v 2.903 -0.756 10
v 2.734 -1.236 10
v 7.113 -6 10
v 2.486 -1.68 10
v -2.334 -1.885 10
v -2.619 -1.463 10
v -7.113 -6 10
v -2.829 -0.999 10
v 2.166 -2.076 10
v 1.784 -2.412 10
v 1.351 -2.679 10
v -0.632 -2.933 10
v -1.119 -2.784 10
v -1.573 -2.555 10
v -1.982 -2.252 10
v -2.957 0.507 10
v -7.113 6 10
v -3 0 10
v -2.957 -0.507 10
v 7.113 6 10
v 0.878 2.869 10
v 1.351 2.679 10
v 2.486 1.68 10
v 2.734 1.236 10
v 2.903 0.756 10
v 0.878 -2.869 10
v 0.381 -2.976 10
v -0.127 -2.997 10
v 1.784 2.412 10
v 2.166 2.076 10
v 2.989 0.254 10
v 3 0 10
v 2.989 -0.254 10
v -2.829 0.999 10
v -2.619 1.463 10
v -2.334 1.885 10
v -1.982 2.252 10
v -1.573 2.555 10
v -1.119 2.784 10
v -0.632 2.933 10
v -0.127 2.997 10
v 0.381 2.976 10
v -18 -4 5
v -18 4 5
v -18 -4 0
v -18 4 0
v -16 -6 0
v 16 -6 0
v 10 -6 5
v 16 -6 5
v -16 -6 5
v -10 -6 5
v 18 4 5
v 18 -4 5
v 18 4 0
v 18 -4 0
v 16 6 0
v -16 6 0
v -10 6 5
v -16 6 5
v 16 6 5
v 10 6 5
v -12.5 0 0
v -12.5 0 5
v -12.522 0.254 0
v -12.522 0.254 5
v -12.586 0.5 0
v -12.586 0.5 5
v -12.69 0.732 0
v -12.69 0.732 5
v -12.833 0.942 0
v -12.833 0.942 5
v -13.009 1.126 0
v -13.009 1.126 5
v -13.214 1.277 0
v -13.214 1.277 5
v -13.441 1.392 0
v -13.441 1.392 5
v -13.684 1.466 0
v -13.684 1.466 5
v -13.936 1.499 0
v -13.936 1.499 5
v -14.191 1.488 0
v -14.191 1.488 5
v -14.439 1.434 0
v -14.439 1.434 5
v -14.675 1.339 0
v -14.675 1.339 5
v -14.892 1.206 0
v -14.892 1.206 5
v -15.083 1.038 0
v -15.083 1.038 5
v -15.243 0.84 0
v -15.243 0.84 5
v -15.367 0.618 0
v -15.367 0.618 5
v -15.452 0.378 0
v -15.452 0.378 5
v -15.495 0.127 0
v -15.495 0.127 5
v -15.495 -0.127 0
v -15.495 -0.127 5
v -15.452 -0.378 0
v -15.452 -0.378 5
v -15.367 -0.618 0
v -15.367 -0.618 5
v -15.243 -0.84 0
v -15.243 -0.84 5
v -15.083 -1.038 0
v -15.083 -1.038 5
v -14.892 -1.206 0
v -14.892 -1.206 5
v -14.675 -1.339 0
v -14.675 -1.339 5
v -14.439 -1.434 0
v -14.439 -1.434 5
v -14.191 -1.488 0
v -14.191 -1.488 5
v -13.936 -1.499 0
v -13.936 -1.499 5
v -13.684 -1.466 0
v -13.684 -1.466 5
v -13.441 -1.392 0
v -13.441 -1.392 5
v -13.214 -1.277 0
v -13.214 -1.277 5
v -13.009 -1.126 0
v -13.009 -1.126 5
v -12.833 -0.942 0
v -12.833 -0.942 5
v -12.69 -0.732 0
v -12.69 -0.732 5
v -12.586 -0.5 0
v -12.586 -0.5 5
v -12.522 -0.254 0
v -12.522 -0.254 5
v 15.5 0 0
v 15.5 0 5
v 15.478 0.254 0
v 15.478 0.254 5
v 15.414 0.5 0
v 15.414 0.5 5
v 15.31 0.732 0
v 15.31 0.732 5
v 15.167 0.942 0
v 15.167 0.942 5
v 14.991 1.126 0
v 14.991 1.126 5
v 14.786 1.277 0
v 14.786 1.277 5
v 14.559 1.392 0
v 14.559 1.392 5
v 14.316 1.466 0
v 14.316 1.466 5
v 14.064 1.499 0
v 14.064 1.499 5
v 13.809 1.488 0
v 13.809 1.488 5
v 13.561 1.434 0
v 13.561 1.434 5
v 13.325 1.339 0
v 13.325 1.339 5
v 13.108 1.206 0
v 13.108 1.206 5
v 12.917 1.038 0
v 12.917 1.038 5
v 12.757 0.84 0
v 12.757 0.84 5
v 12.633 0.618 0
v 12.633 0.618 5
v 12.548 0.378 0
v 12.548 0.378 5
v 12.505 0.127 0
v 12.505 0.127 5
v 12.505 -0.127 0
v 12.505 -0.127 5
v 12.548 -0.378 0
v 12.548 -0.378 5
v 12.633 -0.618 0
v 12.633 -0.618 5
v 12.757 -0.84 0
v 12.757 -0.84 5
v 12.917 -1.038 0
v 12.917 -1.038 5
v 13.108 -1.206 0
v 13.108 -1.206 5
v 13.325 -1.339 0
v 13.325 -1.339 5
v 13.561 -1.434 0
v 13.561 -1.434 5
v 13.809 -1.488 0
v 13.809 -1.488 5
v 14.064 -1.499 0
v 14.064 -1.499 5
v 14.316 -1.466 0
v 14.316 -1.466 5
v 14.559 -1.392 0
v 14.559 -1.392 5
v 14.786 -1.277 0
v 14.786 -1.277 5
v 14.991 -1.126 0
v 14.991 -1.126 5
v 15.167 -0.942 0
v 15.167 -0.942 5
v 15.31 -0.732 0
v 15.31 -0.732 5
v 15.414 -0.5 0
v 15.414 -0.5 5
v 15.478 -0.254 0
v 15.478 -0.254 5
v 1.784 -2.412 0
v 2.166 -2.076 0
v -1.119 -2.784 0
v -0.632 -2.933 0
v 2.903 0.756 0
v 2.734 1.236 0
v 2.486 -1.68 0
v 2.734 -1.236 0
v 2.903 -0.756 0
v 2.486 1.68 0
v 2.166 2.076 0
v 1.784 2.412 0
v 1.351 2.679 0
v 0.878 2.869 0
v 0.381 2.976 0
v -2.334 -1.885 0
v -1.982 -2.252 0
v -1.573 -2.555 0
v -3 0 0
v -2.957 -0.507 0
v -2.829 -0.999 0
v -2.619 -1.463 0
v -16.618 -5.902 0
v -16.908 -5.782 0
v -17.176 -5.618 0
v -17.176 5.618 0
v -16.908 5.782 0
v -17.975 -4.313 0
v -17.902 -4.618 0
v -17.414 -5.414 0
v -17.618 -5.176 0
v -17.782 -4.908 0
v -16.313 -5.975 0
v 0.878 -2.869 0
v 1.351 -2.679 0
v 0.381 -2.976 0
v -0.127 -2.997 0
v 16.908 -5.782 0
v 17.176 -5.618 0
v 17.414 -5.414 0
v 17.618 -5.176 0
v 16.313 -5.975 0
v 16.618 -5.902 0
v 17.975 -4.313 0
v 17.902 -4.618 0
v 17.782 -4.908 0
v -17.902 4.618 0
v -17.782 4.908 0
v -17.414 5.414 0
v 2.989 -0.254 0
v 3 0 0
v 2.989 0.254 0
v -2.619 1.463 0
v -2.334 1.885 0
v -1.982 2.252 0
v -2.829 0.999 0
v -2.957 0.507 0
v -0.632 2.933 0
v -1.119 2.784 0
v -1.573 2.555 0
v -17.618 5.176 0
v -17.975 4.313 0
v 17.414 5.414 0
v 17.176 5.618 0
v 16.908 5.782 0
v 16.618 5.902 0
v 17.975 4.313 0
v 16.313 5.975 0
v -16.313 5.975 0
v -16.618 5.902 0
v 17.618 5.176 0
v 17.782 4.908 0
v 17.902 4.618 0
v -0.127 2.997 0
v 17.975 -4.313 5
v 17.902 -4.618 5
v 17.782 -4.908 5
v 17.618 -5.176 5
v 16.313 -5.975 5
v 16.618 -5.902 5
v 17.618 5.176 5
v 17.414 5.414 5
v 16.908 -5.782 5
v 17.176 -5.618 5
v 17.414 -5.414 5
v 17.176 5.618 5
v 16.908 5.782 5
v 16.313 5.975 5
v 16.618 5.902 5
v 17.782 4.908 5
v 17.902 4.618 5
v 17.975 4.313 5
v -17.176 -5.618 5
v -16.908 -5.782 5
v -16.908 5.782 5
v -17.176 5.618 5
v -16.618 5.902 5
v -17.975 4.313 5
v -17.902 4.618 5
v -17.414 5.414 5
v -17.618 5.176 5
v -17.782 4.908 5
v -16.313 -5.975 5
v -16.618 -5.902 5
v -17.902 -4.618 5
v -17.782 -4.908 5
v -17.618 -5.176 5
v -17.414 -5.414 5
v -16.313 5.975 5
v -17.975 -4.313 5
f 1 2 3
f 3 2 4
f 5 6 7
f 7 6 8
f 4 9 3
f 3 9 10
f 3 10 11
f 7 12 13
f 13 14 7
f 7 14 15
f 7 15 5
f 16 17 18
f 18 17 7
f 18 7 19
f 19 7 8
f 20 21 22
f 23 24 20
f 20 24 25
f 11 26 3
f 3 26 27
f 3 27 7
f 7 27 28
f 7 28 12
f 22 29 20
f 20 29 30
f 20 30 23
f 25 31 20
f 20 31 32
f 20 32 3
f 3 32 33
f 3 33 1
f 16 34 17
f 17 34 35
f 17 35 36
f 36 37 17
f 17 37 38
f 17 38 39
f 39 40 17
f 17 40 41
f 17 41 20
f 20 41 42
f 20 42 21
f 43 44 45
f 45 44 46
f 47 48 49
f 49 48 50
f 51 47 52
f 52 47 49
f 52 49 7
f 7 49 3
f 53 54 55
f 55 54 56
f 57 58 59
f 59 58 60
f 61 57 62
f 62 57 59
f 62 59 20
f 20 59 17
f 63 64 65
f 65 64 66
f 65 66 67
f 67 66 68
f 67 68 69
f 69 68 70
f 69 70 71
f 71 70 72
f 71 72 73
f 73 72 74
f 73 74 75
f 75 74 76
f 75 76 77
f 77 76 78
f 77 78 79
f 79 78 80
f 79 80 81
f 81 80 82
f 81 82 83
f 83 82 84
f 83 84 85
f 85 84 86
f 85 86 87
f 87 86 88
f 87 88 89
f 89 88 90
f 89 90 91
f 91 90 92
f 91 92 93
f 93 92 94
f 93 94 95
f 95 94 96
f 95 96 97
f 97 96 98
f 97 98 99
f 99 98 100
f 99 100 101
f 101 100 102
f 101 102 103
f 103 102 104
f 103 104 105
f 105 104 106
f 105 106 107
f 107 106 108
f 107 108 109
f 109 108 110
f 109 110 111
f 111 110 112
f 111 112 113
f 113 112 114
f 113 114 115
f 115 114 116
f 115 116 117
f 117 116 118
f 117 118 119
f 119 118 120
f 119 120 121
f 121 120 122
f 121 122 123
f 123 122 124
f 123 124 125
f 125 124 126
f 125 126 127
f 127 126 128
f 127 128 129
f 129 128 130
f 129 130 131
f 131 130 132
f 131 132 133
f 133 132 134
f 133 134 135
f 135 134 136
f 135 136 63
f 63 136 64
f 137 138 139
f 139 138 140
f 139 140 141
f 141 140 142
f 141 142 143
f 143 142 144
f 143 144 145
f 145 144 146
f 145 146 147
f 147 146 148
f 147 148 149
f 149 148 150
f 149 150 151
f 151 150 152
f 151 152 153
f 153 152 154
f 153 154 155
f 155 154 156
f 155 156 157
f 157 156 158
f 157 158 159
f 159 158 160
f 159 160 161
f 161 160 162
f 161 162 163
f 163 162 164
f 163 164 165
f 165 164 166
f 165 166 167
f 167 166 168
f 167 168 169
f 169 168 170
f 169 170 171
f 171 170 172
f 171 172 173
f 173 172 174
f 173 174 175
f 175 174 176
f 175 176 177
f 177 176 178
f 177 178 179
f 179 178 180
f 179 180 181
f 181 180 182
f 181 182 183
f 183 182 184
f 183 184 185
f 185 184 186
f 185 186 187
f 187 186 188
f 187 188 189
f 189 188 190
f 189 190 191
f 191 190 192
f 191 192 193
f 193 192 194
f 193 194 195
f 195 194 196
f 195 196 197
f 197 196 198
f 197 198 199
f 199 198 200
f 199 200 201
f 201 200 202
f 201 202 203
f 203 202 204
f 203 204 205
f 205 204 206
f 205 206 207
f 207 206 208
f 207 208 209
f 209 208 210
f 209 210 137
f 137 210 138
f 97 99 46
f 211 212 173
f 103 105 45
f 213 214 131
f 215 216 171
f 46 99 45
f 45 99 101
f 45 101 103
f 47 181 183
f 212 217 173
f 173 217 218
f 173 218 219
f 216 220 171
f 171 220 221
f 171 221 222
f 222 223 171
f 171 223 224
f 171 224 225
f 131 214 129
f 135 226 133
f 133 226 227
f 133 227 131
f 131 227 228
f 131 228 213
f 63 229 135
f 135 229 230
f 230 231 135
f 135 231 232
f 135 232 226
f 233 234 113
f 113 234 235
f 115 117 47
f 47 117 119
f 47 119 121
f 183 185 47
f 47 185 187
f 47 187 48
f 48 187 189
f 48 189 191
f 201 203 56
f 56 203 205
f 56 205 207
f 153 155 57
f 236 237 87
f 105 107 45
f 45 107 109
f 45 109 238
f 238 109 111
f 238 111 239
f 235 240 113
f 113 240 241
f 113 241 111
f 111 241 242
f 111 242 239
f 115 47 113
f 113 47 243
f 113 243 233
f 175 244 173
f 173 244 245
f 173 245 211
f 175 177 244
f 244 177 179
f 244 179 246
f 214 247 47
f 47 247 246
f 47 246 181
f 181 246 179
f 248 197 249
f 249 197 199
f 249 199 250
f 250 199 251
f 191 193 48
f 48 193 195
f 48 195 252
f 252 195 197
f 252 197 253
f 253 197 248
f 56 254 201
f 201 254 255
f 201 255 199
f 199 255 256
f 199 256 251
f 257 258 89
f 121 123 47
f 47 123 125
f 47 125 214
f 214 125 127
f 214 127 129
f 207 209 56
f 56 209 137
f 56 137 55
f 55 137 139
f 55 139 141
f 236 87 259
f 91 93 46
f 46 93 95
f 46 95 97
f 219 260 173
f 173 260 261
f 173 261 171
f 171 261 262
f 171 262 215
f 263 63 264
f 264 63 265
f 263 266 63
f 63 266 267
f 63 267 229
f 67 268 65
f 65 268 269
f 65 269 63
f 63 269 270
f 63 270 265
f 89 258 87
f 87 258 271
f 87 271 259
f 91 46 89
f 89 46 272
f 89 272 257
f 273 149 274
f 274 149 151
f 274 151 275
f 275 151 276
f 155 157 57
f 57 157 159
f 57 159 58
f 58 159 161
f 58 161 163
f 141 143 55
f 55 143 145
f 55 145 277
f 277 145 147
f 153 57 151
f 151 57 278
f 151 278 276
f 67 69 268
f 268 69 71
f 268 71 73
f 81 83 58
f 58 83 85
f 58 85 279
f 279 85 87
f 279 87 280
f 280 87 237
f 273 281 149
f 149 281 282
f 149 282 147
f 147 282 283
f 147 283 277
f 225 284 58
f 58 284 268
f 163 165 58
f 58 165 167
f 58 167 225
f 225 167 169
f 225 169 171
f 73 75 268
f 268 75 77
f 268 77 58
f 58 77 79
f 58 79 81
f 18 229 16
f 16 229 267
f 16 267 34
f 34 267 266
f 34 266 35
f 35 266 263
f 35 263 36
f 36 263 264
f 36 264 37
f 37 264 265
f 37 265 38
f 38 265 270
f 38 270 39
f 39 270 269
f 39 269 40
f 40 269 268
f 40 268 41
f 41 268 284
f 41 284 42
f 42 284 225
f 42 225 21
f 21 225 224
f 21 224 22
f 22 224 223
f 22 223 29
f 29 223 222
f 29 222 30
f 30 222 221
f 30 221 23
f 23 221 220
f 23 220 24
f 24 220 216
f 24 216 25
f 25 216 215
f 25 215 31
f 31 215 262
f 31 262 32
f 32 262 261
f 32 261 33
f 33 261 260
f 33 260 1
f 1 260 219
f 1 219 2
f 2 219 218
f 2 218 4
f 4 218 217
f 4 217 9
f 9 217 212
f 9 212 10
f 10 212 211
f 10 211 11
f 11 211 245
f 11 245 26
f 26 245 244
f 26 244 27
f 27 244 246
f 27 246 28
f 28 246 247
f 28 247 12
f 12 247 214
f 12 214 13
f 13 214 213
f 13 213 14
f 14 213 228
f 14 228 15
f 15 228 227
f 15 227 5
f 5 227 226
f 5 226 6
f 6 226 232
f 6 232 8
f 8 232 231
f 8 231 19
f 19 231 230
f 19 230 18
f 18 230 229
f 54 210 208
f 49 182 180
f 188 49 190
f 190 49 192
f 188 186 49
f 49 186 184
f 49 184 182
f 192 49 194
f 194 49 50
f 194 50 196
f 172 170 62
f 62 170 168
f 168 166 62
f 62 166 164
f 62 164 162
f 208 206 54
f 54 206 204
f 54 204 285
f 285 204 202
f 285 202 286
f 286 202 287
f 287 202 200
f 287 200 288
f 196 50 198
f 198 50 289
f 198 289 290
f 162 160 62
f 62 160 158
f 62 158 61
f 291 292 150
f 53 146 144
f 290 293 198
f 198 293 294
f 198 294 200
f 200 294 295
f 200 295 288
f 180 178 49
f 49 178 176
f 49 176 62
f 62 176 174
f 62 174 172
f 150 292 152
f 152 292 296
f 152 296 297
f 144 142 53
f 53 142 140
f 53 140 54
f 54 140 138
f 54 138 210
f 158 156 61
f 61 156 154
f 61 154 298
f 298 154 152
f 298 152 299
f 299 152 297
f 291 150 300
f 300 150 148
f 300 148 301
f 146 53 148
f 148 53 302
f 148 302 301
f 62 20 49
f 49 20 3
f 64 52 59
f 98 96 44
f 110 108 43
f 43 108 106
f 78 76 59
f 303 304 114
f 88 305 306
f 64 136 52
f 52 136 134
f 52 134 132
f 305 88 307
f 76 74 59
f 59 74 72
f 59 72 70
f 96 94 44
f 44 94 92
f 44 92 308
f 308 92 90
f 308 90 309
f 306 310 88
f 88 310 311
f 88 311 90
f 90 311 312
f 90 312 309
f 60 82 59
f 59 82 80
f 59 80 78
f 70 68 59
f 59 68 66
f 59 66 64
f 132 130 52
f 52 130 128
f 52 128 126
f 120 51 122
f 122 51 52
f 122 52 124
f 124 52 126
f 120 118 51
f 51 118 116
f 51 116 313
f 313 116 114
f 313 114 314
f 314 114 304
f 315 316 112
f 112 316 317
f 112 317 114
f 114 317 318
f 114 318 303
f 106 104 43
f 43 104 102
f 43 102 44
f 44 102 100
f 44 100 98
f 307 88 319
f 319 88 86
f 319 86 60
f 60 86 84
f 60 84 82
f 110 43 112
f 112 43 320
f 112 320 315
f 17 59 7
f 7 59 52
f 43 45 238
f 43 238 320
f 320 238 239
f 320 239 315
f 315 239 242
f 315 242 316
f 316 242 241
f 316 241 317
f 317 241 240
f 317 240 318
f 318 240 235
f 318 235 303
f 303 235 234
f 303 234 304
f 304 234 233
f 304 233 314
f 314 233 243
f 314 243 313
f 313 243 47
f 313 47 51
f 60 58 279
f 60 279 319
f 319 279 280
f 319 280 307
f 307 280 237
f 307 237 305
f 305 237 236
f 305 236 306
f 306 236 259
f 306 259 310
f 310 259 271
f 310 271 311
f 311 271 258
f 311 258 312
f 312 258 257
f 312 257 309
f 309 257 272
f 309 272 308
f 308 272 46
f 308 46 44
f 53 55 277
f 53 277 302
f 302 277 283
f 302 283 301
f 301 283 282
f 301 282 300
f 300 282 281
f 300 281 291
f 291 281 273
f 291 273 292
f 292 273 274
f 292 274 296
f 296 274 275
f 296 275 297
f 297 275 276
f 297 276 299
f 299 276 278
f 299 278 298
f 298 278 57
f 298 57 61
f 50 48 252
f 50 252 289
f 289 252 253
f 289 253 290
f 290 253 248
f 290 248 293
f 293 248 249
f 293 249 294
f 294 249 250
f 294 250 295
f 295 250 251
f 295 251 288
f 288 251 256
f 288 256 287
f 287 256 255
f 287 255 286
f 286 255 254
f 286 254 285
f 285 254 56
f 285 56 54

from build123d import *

# Parameters (mm, degrees)
ESQUISSE1_W             = 36
ESQUISSE1_H             = 12
ESQUISSE1_R             = 3
BOSS_EXTRU_1_DEPTH      = 10
ESQUISSE2_R             = 1.5
ENL_V_MAT_EXTRU_1_DEPTH = 22.44761059
ESQUISSE3_OUTSIDE_W     = 45.848
ESQUISSE3_OUTSIDE_H     = 19.848
ENL_V_MAT_EXTRU_2_DEPTH = 24.832750576
CONG_1_R                = 2


with BuildPart() as part:
    # Esquisse1 → Boss.-Extru.1 (new body)
    with BuildSketch(Plane.XY):
        Rectangle(ESQUISSE1_W, ESQUISSE1_H)
        Circle(ESQUISSE1_R, mode=Mode.SUBTRACT)
    extrude(amount=BOSS_EXTRU_1_DEPTH)

    # Esquisse2 → Enlèv. mat.-Extru.1 (cut, through all)
    with BuildSketch(Plane.XY.offset(10)):
        with Locations((-14, 0)):
            Circle(ESQUISSE2_R)
        with Locations((14, 0)):
            Circle(ESQUISSE2_R)
    extrude(amount=-ENL_V_MAT_EXTRU_1_DEPTH, mode=Mode.SUBTRACT)

    # Esquisse3 outside → Enlèv. mat.-Extru.2 (cut, through all)
    with BuildSketch(Plane.XZ.offset(6)):
        with Locations((0, 5)):
            Rectangle(ESQUISSE3_OUTSIDE_W, ESQUISSE3_OUTSIDE_H)
        Polygon((-18, 0), (-18, 5), (-10, 5), (-7.113248654, 10), (7.113248654, 10), (10, 5), (18, 5), (18, 0), align=None, mode=Mode.SUBTRACT)
    extrude(amount=-ENL_V_MAT_EXTRU_2_DEPTH, mode=Mode.SUBTRACT)

    # Congé1
    cong_1_edges = [part.edges().sort_by_distance(p)[0] for p in [
        (-18, 6, 2.5),
        (18, 6, 2.5),
        (18, -6, 2.5),
        (-18, -6, 2.5),
    ]]
    fillet(cong_1_edges, radius=CONG_1_R)


solid = part.part
